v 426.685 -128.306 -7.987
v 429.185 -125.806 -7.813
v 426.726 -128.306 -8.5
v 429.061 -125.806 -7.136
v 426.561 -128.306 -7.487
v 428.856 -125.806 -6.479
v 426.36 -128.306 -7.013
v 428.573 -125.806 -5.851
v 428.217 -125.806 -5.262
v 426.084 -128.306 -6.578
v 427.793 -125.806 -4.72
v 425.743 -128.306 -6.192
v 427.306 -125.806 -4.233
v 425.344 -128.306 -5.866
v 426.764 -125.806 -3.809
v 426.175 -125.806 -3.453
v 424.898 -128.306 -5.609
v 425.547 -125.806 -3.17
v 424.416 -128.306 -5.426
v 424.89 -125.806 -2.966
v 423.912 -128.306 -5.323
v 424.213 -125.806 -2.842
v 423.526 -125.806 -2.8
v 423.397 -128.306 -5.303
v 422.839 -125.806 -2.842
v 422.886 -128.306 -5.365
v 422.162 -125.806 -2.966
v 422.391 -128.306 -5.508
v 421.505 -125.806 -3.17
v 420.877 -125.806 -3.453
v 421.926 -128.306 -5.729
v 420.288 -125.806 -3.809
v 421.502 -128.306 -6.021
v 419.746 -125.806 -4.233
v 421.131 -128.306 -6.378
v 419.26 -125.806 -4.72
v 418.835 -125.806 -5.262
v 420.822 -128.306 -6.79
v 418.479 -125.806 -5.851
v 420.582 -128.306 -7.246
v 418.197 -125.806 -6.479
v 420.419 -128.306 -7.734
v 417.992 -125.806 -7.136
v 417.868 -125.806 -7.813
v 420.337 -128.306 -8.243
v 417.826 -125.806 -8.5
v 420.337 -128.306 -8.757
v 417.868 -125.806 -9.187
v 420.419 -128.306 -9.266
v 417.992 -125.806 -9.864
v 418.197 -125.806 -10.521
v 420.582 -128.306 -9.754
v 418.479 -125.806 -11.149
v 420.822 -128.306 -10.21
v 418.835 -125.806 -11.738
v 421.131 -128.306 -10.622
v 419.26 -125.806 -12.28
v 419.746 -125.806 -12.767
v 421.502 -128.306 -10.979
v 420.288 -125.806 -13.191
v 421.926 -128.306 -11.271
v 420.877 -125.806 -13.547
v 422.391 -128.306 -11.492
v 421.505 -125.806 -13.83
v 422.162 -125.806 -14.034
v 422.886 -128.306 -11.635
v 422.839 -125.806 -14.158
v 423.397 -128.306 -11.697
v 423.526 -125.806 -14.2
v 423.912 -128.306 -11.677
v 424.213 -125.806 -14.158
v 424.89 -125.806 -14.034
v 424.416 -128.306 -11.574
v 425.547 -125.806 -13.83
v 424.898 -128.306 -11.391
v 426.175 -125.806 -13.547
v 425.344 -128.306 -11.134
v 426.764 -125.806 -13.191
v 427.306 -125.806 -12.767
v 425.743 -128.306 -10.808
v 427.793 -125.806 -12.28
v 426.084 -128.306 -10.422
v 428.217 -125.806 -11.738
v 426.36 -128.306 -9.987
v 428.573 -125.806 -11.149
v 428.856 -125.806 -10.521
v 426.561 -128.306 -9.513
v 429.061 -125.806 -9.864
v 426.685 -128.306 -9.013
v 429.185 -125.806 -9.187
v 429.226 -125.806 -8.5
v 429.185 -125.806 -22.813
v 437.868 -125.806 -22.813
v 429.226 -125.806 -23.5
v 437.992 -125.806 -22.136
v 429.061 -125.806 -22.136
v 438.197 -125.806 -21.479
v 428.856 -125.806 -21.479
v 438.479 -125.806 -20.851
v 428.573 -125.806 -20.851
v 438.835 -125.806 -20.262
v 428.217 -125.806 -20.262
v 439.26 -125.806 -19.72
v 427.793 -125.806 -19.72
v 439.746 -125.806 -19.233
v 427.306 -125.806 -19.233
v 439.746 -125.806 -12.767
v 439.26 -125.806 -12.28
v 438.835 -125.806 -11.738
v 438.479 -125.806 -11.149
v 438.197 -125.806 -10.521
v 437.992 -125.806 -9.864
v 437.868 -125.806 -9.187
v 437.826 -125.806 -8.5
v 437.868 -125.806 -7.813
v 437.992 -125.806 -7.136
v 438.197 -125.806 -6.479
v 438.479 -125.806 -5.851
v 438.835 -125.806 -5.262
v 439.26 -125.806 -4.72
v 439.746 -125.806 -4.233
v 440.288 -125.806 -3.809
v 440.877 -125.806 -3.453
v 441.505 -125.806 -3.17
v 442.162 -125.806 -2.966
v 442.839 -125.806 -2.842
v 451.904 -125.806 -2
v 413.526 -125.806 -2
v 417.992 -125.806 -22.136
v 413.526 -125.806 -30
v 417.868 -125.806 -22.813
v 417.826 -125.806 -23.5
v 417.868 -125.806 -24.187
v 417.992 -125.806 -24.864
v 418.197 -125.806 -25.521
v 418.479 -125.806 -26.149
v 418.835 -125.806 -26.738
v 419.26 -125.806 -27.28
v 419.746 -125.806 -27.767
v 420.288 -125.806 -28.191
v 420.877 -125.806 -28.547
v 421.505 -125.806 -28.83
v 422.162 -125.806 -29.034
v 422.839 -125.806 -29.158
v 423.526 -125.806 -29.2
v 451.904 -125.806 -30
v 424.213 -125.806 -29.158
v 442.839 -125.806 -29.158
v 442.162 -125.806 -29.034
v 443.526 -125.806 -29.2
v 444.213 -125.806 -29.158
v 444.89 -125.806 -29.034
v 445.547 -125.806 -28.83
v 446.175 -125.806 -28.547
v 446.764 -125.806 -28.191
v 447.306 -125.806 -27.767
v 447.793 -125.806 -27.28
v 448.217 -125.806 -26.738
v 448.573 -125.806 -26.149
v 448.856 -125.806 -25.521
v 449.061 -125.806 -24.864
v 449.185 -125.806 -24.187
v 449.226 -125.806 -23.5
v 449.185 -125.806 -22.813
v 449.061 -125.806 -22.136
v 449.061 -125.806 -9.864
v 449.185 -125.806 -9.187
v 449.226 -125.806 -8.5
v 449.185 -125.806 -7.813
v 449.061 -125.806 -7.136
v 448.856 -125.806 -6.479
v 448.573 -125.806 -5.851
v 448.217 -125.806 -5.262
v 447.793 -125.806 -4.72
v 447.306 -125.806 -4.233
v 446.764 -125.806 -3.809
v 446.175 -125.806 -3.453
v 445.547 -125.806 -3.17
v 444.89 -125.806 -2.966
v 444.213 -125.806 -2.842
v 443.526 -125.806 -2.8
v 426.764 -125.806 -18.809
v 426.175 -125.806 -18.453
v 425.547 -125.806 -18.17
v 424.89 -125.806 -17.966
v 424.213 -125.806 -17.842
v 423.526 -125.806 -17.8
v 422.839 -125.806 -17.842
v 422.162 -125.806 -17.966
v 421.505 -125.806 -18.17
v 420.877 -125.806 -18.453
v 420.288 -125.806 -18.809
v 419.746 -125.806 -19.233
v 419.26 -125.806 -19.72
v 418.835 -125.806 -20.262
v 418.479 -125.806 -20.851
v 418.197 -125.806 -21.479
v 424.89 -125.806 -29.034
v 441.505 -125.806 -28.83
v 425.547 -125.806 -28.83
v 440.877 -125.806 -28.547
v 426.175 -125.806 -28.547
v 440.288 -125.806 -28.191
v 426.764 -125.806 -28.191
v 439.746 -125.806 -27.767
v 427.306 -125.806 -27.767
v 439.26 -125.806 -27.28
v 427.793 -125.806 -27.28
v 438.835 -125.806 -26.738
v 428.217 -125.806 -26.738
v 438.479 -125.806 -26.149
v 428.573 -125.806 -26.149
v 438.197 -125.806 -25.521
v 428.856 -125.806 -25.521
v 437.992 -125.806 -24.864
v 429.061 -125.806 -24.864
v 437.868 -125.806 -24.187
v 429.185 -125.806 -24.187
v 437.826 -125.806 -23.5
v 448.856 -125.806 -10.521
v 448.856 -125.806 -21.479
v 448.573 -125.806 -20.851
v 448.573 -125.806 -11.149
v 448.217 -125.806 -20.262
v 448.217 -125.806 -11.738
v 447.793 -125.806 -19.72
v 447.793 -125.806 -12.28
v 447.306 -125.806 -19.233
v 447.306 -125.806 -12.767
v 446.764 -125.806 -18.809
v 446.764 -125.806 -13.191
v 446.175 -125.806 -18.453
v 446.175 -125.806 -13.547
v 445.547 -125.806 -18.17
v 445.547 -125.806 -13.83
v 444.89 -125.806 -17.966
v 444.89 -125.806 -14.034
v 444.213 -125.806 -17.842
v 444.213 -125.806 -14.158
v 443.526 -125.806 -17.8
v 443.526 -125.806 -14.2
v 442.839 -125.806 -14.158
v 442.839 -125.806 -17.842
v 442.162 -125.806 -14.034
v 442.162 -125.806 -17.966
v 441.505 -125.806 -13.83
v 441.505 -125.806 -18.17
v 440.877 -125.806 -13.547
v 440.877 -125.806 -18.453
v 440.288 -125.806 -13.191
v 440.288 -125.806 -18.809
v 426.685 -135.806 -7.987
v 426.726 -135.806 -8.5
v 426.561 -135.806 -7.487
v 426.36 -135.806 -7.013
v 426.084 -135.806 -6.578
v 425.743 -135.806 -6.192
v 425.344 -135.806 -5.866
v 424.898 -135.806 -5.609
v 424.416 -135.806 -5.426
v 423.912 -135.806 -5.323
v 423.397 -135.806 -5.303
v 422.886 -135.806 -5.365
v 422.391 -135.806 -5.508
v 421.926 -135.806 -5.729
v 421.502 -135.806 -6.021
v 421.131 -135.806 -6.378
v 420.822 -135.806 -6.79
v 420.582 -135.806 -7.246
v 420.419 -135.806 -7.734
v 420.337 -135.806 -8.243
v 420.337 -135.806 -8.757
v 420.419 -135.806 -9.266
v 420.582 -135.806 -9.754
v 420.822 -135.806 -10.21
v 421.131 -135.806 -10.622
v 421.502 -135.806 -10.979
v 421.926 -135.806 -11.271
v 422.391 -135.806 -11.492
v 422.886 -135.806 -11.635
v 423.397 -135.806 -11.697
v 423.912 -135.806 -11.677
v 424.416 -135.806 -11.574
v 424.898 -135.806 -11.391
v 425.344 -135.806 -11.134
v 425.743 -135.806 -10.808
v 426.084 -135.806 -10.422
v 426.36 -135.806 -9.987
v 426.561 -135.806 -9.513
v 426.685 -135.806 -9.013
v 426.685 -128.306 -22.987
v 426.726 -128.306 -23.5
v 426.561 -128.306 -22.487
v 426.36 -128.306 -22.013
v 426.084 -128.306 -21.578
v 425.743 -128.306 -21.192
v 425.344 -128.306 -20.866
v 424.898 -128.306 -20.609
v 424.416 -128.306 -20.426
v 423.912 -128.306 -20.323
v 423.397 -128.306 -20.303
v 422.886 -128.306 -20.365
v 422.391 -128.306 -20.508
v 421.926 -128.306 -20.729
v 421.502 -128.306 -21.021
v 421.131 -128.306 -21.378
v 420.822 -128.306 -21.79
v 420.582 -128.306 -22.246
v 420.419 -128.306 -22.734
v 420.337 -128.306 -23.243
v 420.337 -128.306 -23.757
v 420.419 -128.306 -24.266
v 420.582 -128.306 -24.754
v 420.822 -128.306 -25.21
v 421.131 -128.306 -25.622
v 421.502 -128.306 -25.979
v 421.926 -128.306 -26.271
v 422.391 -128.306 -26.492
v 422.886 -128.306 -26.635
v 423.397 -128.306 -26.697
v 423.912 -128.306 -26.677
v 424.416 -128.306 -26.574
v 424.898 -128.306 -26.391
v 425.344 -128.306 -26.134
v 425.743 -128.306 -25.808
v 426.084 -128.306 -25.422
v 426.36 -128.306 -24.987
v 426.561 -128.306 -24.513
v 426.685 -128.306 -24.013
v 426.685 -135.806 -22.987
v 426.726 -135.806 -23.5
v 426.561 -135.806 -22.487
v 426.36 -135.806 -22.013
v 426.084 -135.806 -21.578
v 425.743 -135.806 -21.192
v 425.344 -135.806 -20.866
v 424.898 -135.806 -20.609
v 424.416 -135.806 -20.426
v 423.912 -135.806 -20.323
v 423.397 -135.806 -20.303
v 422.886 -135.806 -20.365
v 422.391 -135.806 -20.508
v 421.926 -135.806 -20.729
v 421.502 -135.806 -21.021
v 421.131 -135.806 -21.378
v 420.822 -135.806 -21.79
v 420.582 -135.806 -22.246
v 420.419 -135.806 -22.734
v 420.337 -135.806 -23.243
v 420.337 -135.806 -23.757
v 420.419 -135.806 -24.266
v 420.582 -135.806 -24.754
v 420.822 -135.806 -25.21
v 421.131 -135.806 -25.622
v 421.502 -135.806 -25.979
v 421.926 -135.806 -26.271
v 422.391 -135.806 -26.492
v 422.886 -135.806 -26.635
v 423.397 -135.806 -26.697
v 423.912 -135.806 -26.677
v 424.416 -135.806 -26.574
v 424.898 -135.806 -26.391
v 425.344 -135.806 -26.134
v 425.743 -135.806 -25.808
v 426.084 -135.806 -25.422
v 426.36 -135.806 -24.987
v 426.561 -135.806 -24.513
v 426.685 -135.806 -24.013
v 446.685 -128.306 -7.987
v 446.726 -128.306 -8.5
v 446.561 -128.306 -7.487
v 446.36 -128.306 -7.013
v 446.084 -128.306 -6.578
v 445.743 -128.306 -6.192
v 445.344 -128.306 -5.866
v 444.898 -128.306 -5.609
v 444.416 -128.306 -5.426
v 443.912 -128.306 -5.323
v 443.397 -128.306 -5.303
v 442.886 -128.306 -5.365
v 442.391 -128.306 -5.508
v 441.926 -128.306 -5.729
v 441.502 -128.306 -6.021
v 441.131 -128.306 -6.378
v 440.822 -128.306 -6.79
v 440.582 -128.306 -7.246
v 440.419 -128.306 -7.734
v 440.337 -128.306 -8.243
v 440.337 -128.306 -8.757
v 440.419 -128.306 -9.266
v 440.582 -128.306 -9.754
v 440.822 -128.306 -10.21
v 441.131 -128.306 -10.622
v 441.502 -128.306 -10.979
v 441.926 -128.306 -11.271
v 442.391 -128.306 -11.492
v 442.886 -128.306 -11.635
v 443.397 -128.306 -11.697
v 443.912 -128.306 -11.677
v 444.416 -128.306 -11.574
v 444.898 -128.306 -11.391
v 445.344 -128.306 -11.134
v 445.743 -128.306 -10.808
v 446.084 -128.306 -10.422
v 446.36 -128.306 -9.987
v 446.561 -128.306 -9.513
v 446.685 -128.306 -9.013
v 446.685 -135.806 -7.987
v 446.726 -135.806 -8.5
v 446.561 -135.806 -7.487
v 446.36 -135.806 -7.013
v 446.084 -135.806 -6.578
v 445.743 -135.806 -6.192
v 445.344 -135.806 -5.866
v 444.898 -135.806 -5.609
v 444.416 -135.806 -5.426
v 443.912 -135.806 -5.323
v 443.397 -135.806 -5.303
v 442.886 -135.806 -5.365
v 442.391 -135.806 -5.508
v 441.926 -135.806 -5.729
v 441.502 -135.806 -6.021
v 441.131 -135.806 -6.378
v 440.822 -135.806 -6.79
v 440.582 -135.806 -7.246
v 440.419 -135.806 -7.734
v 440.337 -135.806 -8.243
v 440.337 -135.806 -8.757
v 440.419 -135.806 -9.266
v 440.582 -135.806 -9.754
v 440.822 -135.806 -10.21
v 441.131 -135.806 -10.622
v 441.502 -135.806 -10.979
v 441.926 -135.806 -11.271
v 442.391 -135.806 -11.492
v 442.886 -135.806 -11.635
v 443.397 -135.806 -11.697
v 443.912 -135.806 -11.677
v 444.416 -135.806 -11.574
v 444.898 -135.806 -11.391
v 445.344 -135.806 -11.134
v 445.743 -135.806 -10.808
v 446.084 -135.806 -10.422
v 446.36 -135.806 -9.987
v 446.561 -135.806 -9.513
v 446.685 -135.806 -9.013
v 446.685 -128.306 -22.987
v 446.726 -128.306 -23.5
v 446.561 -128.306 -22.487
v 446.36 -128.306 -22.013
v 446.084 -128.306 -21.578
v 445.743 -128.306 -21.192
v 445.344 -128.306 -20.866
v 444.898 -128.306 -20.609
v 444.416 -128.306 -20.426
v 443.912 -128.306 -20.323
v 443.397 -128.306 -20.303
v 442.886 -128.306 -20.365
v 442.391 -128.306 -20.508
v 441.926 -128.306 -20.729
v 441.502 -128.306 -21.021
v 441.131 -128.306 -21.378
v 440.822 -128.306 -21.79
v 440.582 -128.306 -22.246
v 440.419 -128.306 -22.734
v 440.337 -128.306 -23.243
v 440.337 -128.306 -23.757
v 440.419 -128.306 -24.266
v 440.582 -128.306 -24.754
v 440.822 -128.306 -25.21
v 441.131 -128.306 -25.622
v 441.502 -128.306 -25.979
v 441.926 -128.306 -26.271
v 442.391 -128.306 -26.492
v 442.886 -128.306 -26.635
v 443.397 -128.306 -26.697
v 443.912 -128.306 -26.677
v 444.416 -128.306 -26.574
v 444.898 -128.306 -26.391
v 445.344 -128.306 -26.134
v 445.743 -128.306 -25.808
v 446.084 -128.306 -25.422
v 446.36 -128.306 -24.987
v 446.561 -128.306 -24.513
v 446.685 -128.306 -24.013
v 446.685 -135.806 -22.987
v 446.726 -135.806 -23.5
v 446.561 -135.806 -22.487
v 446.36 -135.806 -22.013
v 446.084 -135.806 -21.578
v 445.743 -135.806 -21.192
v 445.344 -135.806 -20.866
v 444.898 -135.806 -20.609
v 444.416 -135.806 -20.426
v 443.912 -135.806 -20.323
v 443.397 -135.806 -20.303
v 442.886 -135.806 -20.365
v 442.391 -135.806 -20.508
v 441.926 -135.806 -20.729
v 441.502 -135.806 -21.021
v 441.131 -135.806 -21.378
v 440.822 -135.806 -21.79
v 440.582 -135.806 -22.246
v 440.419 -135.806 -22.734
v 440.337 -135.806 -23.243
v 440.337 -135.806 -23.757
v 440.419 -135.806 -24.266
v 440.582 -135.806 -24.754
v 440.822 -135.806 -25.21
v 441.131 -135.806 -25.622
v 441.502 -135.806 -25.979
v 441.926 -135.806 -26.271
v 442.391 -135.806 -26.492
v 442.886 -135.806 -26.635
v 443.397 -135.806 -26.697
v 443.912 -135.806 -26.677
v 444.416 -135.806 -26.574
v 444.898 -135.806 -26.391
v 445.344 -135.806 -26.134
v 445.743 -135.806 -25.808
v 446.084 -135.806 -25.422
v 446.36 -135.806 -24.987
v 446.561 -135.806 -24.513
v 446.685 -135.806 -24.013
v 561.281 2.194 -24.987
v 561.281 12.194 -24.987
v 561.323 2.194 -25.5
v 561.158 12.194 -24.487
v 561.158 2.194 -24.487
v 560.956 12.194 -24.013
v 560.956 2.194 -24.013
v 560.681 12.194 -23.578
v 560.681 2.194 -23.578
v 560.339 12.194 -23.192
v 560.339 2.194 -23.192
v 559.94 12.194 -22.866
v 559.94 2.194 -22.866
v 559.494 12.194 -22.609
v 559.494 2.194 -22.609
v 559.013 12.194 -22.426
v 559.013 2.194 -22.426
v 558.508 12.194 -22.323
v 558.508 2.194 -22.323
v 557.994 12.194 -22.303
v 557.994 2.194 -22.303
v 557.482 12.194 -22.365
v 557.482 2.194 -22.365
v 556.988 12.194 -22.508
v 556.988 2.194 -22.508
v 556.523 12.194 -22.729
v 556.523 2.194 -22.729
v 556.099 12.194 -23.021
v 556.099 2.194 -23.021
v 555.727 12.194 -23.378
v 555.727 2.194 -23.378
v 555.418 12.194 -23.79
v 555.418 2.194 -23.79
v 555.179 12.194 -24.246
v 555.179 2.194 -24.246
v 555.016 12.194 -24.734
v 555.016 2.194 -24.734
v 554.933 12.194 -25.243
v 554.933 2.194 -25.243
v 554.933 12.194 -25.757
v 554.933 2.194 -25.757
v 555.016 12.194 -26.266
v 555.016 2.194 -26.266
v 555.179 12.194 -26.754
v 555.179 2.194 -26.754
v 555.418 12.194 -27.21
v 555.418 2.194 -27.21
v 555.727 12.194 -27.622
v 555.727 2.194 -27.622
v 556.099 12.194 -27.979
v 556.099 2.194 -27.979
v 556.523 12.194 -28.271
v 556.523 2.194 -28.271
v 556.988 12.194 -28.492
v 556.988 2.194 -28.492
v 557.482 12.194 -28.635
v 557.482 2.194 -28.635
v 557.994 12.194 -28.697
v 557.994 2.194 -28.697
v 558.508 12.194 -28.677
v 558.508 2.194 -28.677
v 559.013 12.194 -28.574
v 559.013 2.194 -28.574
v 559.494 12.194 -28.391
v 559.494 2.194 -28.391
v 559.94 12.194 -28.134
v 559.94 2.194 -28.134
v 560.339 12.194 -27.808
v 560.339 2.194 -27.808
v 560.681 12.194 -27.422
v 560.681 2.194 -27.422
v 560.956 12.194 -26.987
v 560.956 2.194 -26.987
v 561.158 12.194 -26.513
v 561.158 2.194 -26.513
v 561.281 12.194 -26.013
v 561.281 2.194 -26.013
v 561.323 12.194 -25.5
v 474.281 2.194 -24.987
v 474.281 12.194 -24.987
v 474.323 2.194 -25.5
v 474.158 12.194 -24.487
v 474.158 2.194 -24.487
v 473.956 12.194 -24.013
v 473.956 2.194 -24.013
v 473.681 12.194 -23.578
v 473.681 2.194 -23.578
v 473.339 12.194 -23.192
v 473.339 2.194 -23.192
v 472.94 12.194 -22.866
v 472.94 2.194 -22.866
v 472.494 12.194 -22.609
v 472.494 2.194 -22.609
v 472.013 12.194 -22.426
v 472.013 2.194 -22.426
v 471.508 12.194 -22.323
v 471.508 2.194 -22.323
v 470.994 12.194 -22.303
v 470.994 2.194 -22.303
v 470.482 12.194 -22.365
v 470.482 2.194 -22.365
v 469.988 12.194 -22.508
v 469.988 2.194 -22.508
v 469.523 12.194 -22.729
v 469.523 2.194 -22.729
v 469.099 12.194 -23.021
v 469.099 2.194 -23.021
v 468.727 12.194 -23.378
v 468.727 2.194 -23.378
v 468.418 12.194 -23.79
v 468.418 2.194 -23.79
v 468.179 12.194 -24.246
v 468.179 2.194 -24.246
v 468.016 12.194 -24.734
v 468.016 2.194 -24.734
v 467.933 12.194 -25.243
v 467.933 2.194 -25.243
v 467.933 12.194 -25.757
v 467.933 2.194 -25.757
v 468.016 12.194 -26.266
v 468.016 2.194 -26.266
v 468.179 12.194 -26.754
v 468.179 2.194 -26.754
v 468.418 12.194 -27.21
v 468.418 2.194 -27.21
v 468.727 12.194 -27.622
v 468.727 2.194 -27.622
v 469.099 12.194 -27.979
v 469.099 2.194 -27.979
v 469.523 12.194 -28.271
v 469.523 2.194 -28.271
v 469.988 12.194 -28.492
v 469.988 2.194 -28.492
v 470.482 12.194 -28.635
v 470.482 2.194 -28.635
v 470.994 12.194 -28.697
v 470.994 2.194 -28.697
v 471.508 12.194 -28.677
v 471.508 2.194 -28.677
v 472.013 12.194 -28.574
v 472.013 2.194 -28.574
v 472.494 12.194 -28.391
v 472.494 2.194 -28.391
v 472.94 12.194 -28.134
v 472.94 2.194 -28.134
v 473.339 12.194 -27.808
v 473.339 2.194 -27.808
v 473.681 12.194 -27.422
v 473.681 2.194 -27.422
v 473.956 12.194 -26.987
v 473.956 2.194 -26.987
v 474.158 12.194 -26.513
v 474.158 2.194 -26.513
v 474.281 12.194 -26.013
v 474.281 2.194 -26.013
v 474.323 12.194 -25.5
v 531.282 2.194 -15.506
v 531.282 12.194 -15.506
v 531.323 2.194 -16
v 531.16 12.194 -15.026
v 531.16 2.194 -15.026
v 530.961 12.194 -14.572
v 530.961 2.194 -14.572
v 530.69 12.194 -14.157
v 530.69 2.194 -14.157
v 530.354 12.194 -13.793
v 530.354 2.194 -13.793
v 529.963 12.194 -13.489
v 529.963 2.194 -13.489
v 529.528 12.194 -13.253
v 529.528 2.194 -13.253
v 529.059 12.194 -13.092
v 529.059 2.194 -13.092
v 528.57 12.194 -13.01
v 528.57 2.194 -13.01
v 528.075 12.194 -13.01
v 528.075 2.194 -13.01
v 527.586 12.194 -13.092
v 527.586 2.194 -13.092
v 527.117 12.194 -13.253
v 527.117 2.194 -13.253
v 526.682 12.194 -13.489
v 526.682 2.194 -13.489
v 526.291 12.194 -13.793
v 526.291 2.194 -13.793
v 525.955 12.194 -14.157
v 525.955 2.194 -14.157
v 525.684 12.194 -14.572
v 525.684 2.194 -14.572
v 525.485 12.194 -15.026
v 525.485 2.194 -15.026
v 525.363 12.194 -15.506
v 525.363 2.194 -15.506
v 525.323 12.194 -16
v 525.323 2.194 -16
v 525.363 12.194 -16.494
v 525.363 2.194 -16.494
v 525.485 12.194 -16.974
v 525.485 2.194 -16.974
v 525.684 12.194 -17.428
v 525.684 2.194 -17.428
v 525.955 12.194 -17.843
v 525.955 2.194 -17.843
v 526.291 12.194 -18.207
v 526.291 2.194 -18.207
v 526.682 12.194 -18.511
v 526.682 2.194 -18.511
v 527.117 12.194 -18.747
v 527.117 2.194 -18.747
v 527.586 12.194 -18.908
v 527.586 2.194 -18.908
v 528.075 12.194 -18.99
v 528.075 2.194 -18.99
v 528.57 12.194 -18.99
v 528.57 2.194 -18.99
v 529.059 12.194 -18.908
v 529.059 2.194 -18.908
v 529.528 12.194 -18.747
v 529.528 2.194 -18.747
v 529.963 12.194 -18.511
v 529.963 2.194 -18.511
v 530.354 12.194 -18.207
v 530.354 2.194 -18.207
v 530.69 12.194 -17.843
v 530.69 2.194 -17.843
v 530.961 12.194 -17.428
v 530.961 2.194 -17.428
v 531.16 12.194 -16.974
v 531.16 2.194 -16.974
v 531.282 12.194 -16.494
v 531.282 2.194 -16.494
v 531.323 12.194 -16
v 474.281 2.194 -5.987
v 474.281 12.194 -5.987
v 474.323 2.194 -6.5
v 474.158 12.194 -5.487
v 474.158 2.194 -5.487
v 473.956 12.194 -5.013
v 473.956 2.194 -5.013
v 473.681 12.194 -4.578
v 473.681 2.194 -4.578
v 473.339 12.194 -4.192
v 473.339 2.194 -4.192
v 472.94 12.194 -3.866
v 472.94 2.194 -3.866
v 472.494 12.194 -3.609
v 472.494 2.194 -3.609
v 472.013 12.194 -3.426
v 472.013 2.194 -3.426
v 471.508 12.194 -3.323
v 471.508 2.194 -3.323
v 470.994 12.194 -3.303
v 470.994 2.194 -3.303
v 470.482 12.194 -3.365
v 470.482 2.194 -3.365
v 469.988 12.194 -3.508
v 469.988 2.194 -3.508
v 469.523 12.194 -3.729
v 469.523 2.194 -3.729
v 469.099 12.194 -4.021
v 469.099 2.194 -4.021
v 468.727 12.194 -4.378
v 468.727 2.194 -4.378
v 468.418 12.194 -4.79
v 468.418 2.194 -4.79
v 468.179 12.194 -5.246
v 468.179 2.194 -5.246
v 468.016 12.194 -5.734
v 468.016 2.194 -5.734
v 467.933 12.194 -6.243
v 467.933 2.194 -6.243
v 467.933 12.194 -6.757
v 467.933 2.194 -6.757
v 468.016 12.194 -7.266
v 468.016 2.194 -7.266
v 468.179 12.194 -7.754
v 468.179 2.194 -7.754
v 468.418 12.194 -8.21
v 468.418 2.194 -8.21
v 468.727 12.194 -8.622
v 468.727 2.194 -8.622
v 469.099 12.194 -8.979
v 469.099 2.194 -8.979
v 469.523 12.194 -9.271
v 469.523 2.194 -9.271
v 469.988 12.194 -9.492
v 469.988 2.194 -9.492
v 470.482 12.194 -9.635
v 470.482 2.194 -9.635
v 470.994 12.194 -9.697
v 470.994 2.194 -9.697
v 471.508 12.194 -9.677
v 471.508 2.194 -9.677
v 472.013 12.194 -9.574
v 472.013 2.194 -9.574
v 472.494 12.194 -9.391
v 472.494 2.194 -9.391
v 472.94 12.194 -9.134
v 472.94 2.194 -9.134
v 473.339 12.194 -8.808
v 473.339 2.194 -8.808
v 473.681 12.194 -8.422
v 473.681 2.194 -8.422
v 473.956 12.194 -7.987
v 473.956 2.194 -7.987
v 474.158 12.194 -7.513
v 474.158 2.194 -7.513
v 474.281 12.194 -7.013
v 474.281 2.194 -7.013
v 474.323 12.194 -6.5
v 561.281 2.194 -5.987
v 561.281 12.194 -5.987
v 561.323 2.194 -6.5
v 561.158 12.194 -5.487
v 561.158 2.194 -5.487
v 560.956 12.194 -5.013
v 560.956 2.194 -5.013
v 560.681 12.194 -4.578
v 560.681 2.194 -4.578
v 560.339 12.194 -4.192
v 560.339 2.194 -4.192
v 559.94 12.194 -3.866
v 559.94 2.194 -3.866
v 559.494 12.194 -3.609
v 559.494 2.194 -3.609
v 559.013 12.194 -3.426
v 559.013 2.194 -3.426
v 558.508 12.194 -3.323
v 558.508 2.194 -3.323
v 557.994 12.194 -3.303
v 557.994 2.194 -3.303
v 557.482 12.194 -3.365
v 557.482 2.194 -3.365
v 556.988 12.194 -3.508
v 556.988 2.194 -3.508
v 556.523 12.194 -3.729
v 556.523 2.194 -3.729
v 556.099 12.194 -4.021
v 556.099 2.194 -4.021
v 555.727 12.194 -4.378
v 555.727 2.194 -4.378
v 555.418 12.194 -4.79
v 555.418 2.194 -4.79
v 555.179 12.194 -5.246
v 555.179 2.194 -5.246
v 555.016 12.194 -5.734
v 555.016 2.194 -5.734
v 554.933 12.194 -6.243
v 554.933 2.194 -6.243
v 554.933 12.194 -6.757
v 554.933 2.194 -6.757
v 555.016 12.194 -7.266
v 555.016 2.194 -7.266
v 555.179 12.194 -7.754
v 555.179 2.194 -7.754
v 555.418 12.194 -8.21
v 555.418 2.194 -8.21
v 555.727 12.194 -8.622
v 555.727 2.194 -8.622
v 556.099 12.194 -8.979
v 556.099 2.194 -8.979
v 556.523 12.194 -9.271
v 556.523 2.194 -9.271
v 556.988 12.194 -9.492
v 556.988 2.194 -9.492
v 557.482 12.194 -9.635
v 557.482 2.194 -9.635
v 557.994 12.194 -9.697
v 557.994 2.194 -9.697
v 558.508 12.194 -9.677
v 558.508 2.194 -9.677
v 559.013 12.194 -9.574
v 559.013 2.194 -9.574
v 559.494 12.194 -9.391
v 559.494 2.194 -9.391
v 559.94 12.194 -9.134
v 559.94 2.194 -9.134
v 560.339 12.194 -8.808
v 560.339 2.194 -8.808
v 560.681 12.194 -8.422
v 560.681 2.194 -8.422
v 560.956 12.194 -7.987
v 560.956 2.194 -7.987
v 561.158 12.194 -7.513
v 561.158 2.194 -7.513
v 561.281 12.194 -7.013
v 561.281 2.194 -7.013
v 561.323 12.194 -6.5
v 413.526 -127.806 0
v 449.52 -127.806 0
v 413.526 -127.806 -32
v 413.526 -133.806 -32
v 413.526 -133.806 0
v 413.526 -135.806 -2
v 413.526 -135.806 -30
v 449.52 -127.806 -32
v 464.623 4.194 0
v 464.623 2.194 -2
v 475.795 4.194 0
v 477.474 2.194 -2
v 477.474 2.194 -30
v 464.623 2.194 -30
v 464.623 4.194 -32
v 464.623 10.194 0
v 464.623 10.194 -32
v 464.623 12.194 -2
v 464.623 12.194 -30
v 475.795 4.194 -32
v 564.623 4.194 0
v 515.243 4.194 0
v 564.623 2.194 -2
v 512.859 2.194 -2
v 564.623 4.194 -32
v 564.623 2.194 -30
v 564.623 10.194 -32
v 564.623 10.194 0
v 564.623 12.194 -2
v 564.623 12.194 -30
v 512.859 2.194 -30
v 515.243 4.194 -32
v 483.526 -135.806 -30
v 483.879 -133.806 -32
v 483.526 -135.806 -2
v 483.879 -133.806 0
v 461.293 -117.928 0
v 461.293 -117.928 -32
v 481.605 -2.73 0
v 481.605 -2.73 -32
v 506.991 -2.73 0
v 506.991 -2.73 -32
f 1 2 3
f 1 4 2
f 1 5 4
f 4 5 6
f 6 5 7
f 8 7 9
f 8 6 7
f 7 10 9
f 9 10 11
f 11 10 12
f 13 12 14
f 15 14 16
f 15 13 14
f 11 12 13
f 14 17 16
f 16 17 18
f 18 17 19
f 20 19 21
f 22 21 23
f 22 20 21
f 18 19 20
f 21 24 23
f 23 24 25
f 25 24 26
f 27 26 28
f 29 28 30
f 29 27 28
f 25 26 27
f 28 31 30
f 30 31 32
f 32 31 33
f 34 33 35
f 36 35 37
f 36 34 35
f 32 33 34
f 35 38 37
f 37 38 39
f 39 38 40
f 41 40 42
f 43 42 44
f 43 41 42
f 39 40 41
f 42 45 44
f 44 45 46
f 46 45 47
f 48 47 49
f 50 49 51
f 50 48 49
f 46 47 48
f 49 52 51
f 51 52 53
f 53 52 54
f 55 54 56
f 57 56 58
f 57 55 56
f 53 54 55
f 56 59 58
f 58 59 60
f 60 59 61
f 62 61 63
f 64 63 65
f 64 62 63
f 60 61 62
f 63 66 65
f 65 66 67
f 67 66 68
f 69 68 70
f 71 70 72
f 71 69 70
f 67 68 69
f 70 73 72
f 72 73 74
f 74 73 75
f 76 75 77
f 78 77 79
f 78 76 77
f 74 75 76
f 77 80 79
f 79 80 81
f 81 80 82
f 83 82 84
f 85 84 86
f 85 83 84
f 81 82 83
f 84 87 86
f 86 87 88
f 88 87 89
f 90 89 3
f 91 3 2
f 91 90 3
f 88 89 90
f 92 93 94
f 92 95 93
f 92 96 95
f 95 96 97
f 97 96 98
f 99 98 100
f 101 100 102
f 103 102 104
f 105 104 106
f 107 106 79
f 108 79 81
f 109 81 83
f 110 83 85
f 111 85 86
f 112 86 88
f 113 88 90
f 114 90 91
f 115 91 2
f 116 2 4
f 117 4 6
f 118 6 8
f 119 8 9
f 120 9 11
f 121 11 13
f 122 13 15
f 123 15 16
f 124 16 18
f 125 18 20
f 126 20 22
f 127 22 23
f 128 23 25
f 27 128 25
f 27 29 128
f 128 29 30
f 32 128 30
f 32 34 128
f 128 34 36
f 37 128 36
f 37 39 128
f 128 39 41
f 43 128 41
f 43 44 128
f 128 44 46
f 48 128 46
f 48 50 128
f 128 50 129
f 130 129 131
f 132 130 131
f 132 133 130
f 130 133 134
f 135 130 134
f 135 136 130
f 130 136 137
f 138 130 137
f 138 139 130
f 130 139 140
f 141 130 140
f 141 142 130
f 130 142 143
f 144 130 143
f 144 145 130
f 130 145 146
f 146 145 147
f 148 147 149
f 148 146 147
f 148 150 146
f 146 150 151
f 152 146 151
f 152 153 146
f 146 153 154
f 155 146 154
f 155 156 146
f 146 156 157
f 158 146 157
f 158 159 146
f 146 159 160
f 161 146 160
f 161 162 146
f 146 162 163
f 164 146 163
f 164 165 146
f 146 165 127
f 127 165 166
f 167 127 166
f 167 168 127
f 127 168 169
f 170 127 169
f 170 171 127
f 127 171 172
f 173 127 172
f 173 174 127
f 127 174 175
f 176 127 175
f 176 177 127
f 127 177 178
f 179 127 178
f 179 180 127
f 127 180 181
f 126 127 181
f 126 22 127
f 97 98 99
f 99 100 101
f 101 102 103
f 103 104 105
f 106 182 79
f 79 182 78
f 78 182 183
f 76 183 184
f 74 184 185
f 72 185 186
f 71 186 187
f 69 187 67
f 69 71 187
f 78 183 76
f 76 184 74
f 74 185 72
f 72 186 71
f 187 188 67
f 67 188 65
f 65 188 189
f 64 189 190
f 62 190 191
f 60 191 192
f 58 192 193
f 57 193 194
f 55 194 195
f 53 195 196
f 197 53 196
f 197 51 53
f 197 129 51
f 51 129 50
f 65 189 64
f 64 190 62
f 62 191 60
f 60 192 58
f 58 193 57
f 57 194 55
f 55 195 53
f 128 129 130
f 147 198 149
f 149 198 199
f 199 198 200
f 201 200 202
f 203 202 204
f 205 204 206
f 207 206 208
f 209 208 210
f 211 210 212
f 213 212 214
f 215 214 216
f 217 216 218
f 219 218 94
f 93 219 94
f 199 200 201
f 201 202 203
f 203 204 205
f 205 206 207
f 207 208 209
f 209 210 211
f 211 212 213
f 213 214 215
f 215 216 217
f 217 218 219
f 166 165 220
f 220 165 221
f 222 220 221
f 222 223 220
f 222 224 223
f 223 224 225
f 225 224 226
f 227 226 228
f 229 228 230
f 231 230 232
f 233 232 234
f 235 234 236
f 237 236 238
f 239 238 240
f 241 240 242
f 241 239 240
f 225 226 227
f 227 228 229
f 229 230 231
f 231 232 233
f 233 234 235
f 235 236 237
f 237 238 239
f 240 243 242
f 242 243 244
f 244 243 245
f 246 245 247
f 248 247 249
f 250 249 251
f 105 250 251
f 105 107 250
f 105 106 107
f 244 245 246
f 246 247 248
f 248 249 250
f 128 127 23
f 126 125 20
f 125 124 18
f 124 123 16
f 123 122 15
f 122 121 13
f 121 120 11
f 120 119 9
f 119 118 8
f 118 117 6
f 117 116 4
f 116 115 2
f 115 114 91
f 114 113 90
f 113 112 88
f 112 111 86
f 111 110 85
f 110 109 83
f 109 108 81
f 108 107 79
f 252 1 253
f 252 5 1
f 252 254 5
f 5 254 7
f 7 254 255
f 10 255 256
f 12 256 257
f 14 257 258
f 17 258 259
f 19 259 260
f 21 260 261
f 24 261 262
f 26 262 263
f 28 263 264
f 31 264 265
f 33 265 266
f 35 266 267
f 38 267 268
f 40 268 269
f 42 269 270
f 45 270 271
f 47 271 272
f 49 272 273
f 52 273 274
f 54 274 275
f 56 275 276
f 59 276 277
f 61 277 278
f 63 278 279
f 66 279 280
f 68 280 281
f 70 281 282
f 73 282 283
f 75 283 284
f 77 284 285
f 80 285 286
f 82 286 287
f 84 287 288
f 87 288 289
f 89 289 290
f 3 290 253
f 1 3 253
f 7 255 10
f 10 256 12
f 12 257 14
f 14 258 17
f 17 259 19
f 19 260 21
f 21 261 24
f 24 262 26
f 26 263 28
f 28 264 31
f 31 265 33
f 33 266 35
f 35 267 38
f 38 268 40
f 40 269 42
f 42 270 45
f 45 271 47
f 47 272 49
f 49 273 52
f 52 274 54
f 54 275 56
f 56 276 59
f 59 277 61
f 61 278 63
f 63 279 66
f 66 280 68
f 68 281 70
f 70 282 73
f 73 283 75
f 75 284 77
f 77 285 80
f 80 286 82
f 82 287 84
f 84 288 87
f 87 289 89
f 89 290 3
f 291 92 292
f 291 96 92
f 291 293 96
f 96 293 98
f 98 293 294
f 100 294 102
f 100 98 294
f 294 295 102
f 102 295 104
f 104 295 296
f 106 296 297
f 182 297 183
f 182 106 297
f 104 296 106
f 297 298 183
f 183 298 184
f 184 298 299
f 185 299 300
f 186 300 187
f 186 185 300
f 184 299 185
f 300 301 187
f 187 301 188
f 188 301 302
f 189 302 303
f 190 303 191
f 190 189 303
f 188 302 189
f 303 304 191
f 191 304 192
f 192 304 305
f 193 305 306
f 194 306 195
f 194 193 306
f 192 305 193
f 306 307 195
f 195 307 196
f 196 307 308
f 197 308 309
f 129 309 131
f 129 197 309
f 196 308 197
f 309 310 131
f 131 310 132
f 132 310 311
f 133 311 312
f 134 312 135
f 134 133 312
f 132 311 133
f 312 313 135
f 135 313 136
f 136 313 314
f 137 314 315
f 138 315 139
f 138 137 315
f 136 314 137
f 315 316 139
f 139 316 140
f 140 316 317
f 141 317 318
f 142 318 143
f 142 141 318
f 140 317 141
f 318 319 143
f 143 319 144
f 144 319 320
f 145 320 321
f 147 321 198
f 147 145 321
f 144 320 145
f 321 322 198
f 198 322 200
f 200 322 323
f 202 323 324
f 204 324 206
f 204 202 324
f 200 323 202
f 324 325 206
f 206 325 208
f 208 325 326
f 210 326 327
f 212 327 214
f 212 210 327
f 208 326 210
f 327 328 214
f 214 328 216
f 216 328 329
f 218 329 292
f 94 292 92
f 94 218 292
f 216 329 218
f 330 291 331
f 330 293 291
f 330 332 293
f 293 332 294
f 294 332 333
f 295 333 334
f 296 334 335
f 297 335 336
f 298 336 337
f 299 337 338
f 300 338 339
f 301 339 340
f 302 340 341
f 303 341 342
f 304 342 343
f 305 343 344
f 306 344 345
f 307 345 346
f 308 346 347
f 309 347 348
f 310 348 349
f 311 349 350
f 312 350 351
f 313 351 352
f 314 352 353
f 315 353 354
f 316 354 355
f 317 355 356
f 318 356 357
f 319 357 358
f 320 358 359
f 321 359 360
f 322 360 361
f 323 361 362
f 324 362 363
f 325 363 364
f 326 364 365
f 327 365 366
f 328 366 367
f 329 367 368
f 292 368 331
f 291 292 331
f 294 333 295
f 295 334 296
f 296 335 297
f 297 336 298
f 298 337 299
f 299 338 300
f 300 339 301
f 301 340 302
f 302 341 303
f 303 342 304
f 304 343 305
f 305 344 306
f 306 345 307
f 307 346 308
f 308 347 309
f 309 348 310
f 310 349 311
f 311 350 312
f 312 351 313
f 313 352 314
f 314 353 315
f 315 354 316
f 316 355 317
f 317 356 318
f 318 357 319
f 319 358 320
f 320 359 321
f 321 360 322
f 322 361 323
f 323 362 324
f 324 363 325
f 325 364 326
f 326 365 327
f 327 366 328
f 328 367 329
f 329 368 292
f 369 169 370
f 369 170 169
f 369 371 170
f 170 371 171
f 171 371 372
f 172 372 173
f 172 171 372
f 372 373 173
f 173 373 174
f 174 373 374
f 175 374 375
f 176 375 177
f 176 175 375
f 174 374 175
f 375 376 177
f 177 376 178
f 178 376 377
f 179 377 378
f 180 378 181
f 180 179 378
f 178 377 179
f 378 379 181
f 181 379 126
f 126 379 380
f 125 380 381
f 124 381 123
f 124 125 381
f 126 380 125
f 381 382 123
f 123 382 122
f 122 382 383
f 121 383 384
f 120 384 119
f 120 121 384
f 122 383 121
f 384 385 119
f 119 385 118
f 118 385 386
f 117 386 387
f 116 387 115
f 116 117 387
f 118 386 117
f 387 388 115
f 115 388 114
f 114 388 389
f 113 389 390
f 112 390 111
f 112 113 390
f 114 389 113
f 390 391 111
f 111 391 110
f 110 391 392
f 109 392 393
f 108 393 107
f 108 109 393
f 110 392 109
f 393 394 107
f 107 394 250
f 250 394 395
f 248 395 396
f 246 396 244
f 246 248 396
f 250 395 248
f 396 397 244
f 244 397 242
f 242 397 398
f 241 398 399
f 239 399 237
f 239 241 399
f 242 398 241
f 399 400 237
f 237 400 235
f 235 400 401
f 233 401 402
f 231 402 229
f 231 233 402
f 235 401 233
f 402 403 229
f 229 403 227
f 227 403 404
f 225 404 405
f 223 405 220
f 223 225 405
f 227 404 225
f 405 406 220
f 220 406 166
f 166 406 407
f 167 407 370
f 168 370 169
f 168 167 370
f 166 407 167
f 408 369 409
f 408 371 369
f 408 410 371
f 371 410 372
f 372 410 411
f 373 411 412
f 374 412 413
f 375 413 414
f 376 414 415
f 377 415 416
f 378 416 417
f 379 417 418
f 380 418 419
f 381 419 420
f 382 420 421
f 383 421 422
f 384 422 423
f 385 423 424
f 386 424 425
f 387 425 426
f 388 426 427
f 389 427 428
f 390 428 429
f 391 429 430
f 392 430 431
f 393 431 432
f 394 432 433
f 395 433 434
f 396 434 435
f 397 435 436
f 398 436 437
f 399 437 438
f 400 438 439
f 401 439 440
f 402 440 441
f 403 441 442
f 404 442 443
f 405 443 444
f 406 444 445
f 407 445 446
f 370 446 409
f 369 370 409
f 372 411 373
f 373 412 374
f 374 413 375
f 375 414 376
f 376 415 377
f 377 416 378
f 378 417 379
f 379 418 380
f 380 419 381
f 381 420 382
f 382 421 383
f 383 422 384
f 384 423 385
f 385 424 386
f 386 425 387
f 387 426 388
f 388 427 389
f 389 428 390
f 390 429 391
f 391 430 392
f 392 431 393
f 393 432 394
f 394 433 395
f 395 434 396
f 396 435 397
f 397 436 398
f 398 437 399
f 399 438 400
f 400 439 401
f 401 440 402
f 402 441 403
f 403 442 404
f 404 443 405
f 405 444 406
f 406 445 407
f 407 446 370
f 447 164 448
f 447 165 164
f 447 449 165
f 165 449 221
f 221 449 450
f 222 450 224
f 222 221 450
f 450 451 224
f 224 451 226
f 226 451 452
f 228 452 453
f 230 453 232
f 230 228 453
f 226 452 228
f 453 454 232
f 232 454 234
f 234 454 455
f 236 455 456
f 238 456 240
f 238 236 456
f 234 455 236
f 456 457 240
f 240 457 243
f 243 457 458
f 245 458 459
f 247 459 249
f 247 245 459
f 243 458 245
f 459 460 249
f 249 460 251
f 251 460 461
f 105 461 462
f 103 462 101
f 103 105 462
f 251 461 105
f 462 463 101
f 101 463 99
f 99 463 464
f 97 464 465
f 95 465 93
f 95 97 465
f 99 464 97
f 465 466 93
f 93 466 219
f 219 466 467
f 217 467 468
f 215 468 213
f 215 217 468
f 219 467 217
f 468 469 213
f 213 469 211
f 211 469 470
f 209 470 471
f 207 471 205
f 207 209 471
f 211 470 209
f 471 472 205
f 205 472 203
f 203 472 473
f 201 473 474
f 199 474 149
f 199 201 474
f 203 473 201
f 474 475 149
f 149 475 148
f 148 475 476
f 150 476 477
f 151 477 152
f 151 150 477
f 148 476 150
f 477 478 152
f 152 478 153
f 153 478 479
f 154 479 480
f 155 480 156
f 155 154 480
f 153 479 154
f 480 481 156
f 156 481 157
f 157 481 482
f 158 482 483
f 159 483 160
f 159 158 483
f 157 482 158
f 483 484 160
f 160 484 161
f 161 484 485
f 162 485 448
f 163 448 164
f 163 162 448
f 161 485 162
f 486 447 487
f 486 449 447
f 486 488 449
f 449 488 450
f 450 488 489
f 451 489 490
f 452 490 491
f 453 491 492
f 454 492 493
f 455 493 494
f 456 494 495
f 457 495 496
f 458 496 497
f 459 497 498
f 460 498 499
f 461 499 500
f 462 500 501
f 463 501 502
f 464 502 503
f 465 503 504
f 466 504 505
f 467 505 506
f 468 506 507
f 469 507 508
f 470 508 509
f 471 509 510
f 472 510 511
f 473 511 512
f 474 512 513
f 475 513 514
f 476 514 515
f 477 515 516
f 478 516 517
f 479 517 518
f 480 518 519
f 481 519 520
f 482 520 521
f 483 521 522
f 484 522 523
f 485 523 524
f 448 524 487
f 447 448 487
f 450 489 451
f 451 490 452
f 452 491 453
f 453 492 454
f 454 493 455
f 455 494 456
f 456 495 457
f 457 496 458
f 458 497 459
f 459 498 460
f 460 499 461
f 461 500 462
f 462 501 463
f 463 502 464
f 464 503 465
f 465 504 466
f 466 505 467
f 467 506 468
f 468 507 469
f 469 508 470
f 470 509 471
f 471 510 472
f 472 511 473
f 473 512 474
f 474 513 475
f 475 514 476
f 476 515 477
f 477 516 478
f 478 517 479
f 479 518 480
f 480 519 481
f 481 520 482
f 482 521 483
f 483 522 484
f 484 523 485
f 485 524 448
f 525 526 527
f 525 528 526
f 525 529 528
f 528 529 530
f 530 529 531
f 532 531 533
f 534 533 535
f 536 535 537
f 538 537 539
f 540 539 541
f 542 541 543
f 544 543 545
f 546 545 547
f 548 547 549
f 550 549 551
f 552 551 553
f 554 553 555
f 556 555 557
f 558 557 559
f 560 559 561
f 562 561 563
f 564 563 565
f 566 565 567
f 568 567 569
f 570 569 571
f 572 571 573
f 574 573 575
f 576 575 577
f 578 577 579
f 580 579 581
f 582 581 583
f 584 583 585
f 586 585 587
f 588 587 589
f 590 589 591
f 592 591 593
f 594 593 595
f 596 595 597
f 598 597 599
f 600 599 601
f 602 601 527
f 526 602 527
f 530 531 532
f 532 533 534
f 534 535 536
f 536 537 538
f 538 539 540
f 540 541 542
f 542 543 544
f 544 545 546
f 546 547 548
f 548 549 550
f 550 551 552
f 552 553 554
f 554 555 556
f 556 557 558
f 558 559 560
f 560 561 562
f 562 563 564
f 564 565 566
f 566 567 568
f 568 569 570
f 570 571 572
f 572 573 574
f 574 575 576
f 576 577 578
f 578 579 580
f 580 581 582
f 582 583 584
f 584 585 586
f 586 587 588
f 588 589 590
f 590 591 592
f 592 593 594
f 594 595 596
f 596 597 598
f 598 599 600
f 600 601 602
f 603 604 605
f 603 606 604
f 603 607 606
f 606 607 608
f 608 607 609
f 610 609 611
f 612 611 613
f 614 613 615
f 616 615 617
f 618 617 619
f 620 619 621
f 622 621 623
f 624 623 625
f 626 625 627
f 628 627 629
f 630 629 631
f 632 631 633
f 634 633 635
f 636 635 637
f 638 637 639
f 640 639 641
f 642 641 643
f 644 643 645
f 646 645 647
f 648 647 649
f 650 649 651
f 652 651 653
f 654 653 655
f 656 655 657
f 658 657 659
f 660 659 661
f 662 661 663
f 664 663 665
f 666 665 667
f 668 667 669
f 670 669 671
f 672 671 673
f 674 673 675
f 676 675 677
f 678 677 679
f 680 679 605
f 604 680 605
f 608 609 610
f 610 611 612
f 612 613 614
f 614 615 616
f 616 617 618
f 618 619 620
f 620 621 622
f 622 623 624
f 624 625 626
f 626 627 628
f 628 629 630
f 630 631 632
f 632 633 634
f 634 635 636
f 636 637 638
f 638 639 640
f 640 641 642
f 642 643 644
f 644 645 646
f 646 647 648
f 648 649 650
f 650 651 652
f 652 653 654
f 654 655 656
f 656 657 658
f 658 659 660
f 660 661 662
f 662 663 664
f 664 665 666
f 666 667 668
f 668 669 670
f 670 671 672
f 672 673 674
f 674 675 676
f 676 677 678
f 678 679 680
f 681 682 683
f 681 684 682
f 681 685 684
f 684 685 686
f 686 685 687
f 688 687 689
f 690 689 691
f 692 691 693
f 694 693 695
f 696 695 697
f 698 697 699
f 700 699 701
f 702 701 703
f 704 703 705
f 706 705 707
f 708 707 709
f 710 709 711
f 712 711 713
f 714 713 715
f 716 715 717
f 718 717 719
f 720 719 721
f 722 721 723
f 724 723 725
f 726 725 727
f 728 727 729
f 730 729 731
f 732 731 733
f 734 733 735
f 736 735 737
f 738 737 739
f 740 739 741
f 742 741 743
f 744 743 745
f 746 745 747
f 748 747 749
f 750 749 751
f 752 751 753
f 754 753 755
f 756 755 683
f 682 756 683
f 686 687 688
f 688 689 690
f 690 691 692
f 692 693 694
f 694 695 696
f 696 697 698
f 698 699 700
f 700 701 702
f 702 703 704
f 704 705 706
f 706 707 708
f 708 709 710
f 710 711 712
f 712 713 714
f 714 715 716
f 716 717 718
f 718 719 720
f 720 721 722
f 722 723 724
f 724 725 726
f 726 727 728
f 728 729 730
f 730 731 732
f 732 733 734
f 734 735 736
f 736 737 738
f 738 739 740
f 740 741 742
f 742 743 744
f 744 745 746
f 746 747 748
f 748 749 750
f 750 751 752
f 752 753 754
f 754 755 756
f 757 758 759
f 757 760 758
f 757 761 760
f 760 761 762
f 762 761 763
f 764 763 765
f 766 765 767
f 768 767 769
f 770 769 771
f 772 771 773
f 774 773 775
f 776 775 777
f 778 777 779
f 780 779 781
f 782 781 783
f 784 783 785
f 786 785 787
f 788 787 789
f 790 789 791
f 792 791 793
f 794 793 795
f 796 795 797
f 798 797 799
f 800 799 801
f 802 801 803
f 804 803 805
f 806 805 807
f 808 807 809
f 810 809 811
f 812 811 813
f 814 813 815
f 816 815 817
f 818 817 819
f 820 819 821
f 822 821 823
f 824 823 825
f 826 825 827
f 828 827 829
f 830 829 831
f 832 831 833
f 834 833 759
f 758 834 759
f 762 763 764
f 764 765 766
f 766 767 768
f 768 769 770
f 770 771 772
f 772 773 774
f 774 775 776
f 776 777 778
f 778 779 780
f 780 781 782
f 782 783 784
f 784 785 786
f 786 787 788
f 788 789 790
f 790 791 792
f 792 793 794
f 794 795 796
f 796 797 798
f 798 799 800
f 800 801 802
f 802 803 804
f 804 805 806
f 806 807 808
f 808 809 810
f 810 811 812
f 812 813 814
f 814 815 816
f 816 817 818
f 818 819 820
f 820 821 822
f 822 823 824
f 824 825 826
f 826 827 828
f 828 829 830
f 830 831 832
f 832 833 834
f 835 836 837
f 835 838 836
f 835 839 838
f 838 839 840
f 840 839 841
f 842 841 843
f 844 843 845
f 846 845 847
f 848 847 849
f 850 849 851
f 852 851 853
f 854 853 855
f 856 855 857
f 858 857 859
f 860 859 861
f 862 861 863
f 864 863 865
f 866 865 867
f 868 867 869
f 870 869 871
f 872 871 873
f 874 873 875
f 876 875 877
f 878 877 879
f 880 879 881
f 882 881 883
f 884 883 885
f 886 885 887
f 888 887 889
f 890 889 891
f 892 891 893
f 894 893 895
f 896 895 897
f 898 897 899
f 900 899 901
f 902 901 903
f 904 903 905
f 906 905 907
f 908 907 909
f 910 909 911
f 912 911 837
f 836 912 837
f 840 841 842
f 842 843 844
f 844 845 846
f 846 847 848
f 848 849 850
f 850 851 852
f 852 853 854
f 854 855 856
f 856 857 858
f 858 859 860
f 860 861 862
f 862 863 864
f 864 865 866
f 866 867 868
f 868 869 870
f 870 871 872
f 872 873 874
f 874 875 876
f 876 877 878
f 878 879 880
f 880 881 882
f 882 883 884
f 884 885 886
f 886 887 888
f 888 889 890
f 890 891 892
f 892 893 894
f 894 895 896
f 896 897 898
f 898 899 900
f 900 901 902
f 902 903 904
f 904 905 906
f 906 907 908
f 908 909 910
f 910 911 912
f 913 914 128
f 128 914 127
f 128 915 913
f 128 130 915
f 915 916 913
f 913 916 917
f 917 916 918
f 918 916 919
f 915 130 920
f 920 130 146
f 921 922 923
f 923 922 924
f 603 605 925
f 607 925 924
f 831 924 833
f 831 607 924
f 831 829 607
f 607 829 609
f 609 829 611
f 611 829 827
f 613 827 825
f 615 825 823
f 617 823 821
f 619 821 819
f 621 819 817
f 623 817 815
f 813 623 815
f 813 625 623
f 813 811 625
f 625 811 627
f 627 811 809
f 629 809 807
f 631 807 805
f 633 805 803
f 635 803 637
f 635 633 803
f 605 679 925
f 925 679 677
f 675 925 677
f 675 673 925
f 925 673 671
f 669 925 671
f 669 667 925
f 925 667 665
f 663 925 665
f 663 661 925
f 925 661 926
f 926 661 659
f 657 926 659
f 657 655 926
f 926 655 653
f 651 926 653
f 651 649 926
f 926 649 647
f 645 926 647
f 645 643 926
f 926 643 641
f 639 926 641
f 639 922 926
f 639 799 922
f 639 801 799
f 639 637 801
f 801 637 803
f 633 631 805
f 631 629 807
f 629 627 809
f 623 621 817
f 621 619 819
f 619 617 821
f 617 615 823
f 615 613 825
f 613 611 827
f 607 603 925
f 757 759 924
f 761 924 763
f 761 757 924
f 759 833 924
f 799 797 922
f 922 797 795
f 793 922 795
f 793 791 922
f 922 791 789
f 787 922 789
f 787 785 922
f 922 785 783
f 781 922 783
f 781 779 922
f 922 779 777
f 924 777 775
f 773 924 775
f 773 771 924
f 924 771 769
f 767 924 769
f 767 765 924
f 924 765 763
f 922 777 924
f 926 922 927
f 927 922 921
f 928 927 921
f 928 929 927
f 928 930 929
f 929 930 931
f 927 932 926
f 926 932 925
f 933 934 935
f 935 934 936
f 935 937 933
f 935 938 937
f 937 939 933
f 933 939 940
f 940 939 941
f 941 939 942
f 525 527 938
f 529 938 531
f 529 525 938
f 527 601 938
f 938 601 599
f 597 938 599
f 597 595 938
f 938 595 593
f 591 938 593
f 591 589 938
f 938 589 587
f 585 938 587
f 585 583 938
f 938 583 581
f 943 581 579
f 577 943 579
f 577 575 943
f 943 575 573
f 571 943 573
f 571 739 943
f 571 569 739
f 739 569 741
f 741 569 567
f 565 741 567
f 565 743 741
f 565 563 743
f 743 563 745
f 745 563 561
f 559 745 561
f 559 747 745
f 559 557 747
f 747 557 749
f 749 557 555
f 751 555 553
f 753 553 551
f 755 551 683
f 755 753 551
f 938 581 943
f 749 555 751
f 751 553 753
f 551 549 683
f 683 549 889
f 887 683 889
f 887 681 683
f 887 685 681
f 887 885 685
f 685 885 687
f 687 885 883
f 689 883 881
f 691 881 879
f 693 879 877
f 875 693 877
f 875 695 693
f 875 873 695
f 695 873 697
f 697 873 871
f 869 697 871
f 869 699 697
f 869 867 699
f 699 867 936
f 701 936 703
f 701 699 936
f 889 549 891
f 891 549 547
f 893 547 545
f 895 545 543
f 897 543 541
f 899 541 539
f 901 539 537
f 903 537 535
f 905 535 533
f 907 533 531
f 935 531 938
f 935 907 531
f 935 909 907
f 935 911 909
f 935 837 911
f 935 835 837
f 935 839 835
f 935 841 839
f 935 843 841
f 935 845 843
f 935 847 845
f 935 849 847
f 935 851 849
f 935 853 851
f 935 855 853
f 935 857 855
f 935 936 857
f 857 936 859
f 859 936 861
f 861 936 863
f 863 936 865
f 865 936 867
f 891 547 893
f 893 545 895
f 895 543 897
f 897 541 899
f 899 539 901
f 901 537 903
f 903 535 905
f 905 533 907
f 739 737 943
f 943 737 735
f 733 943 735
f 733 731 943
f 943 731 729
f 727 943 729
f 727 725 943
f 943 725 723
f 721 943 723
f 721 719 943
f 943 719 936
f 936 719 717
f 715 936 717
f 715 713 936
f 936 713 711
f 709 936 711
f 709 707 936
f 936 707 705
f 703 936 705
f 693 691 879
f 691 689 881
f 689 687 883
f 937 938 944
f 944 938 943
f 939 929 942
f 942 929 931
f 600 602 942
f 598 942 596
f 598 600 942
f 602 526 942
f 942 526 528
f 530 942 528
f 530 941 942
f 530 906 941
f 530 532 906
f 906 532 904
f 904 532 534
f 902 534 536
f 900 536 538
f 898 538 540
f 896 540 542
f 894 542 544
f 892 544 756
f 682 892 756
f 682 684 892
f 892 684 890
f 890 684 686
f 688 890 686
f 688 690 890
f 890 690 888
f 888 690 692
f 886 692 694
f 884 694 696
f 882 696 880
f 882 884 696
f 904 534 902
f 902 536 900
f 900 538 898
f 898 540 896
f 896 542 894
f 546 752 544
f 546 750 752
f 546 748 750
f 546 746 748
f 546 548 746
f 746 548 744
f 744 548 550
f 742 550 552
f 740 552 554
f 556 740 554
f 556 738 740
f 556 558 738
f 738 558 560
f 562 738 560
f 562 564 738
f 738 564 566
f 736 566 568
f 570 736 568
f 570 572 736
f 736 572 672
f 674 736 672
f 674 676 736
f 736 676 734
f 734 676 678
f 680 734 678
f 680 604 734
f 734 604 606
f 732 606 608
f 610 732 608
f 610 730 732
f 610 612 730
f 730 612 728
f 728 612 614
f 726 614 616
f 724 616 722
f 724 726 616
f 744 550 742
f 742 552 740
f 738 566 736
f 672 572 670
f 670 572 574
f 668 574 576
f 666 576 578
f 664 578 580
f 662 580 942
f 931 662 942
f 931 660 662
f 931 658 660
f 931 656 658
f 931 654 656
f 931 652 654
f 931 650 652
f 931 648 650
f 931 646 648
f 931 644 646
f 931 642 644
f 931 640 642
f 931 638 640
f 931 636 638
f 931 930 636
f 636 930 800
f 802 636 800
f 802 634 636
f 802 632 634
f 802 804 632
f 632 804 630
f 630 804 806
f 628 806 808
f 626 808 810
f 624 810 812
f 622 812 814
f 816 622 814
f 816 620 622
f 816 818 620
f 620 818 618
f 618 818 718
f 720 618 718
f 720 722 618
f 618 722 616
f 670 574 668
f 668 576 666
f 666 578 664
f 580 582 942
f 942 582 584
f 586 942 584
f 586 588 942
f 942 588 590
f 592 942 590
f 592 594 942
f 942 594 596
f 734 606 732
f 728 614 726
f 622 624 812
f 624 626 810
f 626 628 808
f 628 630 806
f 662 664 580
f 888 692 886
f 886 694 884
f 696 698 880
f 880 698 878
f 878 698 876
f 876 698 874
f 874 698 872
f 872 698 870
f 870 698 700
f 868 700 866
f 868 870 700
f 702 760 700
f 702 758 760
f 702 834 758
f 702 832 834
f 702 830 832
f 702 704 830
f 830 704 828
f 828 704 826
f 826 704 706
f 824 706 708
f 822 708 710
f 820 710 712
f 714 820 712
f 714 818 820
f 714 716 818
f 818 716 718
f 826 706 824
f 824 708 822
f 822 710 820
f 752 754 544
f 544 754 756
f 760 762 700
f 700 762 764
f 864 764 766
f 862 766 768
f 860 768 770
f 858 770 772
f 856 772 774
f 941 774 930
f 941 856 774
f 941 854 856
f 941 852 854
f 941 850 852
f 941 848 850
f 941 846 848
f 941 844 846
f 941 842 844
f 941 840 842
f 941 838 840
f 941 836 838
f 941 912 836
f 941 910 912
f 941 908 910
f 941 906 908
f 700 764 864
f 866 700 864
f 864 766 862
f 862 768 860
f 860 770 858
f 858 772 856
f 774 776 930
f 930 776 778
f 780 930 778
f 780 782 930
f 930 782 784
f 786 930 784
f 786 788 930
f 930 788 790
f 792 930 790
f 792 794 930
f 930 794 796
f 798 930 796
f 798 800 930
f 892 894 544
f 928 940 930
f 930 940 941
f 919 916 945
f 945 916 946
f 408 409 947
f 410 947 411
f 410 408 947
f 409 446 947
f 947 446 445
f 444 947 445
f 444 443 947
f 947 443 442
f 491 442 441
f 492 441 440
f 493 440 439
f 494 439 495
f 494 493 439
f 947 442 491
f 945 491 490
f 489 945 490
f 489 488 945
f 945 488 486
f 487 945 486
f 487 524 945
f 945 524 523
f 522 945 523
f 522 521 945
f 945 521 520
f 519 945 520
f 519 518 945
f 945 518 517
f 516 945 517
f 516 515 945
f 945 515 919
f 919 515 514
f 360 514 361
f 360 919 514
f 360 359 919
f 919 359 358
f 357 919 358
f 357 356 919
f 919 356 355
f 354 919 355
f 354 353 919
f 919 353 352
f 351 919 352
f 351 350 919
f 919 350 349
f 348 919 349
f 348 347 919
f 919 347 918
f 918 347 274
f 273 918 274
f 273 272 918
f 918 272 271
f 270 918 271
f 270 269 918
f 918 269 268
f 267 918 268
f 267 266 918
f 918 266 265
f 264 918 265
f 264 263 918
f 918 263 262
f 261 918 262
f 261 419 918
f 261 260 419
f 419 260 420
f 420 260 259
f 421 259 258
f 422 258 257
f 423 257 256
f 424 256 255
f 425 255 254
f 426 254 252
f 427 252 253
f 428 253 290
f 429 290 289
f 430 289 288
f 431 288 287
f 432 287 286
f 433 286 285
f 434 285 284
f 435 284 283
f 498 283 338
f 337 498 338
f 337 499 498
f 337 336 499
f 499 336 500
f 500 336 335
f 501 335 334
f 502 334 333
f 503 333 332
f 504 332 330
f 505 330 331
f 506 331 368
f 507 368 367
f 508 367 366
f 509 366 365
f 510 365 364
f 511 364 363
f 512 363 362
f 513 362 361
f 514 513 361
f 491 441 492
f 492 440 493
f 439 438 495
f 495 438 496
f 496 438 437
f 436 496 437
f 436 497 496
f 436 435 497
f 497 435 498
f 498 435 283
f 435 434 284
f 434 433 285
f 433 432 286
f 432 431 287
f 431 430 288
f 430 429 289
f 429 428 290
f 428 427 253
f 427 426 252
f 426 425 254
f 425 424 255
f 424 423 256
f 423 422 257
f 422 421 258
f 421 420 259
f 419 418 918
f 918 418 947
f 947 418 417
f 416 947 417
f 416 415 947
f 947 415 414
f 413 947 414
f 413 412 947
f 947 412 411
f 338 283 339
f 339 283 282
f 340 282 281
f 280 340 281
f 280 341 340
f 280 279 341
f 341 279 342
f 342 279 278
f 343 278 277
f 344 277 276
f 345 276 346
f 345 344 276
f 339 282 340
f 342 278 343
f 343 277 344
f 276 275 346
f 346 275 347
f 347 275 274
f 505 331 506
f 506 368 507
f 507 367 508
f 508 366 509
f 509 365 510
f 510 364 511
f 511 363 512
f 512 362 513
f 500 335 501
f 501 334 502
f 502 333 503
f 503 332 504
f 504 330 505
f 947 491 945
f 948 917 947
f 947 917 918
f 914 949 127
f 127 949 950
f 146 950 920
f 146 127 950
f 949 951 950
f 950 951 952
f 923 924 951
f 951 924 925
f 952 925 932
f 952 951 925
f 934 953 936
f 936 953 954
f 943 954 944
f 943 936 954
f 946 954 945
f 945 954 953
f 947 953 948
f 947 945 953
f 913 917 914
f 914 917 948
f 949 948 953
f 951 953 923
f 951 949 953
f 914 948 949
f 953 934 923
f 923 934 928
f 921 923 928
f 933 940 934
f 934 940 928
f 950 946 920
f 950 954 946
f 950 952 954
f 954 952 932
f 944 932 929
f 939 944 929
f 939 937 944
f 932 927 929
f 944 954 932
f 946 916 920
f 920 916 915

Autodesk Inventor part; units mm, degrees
ref_plane "YZ Plane" through (0, 0, 0) normal (1, 0, 0) x (0, 1, 0)
ref_plane "XZ Plane" through (0, 0, 0) normal (0, 1, 0) x (-1, 0, 0)
ref_plane "XY Plane" through (0, 0, 0) normal (0, 0, 1) x (1, 0, 0)
sketch "Sketch1" plane through (0, 0, 0) normal (0, 0, 1) x (1, 0, 0)
  line L0 (483.5261, -135.8063) -> (507.8593, 2.1937)
  line L1 (509.6225, 12.1937) -> (464.6225, 12.1937)
  line L2 (464.6225, 14.1937) -> (464.6225, 12.1937) construction
  line L3 (464.6225, 12.1937) -> (564.6225, 12.1937) construction
  line L4 (564.6225, 12.1937) -> (564.6225, 14.1937) construction
  line L5 (564.6225, 14.1937) -> (464.6225, 14.1937) construction
  line L6 (564.6225, 14.1937) -> (464.6225, 14.1937) construction
  line L7 (564.6225, 14.1937) -> (564.6225, 30.1937) construction
  line L8 (552.6225, 30.1937) -> (564.6225, 30.1937) construction
  arc A0 (536.6225, 30.1937) -> (552.6225, 30.1937) centre (544.6225, 30.1937) ccw construction
  line L9 (527.1225, 30.1937) -> (536.6225, 30.1937) construction
  arc A1 (502.1225, 30.1937) -> (527.1225, 30.1937) centre (514.6225, 30.1937) ccw construction
  line L10 (492.6225, 30.1937) -> (502.1225, 30.1937) construction
  arc A2 (476.6225, 30.1937) -> (492.6225, 30.1937) centre (484.6225, 30.1937) ccw construction
  line L11 (464.6225, 30.1937) -> (476.6225, 30.1937) construction
  line L12 (464.6225, 14.1937) -> (464.6225, 30.1937) construction
  line L13 (464.6225, 12.1937) -> (464.6225, 2.1937)
  line L14 (464.6225, 2.1937) -> (482.4736, 2.1937)
  line L15 (482.4736, 2.1937) -> (459.9038, -125.8063)
  line L16 (564.6225, 12.1937) -> (464.6225, 12.1937)
  line L17 (464.6225, 12.1937) -> (464.6225, 7.1937)
  line L18 (483.5261, -135.8063) -> (413.5261, -135.8063)
  line L19 (413.5261, -135.8063) -> (413.5261, -125.8063)
  line L20 (413.5261, -125.8063) -> (459.9038, -125.8063)
  line L21 (507.8593, 2.1937) -> (564.6225, 2.1937)
  line L22 (564.6225, 2.1937) -> (564.6225, 12.1937)
  point P0 (0, 0)
  dimension "d16" = 45
  dimension "d17" = 25
  dimension "d25" = 10
  dimension "d26" = 80
  dimension "d58" = 70
  dimension "d59" = 10
  dimension "d62" = 150
extrude "Extrusion1" add sketch "Sketch1" against normal blind 32
chamfer "Chamfer5" distance 5 angle 45 1 edges at (507.8593, 2.1937, -16)
chamfer "Chamfer8" distance 5 angle 45 1 edges at (482.4736, 2.1937, -16)
chamfer "Chamfer11" distance 8 angle 45 1 edges at (459.9038, -125.8063, -16)
chamfer "Chamfer6" distance 2 angle 45 10 edges at (448.5261, -135.8063, 0) (448.5261, -135.8063, -32) (514.6225, 12.1937, 0) (514.6225, 12.1937, -32) (538.7409, 2.1937, -32) (538.7409, 2.1937, 0) (471.0481, 2.1937, -32) (471.0481, 2.1937, 0) (432.715, -125.8063, -32) (432.715, -125.8063, 0)
sketch "Sketch9" plane through (464.6225, 12.1937, -2) normal (0, 1, 0) x (1, 0, 0)
  circle A0 centre (6.5, 23.5) radius 3.2
  circle A1 centre (6.5, 4.5) radius 3.2
  circle A2 centre (36.3, 14) radius 3
  circle A3 centre (63.7, 14) radius 3
  circle A4 centre (93.5, 23.5) radius 3.2
  circle A5 centre (93.5, 4.5) radius 3.2
  point P0 (-464.6225, -2)
extrude "Extrusion6" cut sketch "Sketch9" against normal blind 32 contours A0 | A1 | A3 | A4 | A5
sketch "Sketch10" plane through (413.5261, -135.8063, -30) normal (0, -1, 0) x (1, 0, 0)
  line L0 (70, 28) -> (70, 0) projected
  line L1 (0, 28) -> (0, 0) projected
  circle A0 centre (10, 21.5) radius 3.2
  circle A1 centre (10, 6.5) radius 3.2
  circle A2 centre (30, 21.5) radius 3.2
  circle A3 centre (30, 6.5) radius 3.2
  line L2 (10, 21.5) -> (30, 21.5) construction
  line L3 (30, 21.5) -> (30, 6.5) construction
  line L4 (30, 6.5) -> (10, 6.5) construction
  line L5 (10, 6.5) -> (10, 21.5) construction
  line L6 (70, 0) -> (0, 0) projected
  line L7 (0, 28) -> (70, 28) projected
  point P0 (-413.5261, 30)
  point P1 (10, 14)
  point P2 (0, 14)
  dimension "d51" = 6.4
  dimension "d52" = 10
  dimension "d53" = 20
  dimension "d54" = 15
extrude "Extrusion7" cut sketch "Sketch10" against normal blind 32 contours A0 | A1 | A2 | A3
chamfer "Chamfer10" distance 2.5 angle 45 4 edges at (440.3261, -125.8063, -23.5) (440.3261, -125.8063, -8.5) (420.3261, -125.8063, -23.5) (420.3261, -125.8063, -8.5)
properties part number "AXLG" material "PC/ABS Plastic"
